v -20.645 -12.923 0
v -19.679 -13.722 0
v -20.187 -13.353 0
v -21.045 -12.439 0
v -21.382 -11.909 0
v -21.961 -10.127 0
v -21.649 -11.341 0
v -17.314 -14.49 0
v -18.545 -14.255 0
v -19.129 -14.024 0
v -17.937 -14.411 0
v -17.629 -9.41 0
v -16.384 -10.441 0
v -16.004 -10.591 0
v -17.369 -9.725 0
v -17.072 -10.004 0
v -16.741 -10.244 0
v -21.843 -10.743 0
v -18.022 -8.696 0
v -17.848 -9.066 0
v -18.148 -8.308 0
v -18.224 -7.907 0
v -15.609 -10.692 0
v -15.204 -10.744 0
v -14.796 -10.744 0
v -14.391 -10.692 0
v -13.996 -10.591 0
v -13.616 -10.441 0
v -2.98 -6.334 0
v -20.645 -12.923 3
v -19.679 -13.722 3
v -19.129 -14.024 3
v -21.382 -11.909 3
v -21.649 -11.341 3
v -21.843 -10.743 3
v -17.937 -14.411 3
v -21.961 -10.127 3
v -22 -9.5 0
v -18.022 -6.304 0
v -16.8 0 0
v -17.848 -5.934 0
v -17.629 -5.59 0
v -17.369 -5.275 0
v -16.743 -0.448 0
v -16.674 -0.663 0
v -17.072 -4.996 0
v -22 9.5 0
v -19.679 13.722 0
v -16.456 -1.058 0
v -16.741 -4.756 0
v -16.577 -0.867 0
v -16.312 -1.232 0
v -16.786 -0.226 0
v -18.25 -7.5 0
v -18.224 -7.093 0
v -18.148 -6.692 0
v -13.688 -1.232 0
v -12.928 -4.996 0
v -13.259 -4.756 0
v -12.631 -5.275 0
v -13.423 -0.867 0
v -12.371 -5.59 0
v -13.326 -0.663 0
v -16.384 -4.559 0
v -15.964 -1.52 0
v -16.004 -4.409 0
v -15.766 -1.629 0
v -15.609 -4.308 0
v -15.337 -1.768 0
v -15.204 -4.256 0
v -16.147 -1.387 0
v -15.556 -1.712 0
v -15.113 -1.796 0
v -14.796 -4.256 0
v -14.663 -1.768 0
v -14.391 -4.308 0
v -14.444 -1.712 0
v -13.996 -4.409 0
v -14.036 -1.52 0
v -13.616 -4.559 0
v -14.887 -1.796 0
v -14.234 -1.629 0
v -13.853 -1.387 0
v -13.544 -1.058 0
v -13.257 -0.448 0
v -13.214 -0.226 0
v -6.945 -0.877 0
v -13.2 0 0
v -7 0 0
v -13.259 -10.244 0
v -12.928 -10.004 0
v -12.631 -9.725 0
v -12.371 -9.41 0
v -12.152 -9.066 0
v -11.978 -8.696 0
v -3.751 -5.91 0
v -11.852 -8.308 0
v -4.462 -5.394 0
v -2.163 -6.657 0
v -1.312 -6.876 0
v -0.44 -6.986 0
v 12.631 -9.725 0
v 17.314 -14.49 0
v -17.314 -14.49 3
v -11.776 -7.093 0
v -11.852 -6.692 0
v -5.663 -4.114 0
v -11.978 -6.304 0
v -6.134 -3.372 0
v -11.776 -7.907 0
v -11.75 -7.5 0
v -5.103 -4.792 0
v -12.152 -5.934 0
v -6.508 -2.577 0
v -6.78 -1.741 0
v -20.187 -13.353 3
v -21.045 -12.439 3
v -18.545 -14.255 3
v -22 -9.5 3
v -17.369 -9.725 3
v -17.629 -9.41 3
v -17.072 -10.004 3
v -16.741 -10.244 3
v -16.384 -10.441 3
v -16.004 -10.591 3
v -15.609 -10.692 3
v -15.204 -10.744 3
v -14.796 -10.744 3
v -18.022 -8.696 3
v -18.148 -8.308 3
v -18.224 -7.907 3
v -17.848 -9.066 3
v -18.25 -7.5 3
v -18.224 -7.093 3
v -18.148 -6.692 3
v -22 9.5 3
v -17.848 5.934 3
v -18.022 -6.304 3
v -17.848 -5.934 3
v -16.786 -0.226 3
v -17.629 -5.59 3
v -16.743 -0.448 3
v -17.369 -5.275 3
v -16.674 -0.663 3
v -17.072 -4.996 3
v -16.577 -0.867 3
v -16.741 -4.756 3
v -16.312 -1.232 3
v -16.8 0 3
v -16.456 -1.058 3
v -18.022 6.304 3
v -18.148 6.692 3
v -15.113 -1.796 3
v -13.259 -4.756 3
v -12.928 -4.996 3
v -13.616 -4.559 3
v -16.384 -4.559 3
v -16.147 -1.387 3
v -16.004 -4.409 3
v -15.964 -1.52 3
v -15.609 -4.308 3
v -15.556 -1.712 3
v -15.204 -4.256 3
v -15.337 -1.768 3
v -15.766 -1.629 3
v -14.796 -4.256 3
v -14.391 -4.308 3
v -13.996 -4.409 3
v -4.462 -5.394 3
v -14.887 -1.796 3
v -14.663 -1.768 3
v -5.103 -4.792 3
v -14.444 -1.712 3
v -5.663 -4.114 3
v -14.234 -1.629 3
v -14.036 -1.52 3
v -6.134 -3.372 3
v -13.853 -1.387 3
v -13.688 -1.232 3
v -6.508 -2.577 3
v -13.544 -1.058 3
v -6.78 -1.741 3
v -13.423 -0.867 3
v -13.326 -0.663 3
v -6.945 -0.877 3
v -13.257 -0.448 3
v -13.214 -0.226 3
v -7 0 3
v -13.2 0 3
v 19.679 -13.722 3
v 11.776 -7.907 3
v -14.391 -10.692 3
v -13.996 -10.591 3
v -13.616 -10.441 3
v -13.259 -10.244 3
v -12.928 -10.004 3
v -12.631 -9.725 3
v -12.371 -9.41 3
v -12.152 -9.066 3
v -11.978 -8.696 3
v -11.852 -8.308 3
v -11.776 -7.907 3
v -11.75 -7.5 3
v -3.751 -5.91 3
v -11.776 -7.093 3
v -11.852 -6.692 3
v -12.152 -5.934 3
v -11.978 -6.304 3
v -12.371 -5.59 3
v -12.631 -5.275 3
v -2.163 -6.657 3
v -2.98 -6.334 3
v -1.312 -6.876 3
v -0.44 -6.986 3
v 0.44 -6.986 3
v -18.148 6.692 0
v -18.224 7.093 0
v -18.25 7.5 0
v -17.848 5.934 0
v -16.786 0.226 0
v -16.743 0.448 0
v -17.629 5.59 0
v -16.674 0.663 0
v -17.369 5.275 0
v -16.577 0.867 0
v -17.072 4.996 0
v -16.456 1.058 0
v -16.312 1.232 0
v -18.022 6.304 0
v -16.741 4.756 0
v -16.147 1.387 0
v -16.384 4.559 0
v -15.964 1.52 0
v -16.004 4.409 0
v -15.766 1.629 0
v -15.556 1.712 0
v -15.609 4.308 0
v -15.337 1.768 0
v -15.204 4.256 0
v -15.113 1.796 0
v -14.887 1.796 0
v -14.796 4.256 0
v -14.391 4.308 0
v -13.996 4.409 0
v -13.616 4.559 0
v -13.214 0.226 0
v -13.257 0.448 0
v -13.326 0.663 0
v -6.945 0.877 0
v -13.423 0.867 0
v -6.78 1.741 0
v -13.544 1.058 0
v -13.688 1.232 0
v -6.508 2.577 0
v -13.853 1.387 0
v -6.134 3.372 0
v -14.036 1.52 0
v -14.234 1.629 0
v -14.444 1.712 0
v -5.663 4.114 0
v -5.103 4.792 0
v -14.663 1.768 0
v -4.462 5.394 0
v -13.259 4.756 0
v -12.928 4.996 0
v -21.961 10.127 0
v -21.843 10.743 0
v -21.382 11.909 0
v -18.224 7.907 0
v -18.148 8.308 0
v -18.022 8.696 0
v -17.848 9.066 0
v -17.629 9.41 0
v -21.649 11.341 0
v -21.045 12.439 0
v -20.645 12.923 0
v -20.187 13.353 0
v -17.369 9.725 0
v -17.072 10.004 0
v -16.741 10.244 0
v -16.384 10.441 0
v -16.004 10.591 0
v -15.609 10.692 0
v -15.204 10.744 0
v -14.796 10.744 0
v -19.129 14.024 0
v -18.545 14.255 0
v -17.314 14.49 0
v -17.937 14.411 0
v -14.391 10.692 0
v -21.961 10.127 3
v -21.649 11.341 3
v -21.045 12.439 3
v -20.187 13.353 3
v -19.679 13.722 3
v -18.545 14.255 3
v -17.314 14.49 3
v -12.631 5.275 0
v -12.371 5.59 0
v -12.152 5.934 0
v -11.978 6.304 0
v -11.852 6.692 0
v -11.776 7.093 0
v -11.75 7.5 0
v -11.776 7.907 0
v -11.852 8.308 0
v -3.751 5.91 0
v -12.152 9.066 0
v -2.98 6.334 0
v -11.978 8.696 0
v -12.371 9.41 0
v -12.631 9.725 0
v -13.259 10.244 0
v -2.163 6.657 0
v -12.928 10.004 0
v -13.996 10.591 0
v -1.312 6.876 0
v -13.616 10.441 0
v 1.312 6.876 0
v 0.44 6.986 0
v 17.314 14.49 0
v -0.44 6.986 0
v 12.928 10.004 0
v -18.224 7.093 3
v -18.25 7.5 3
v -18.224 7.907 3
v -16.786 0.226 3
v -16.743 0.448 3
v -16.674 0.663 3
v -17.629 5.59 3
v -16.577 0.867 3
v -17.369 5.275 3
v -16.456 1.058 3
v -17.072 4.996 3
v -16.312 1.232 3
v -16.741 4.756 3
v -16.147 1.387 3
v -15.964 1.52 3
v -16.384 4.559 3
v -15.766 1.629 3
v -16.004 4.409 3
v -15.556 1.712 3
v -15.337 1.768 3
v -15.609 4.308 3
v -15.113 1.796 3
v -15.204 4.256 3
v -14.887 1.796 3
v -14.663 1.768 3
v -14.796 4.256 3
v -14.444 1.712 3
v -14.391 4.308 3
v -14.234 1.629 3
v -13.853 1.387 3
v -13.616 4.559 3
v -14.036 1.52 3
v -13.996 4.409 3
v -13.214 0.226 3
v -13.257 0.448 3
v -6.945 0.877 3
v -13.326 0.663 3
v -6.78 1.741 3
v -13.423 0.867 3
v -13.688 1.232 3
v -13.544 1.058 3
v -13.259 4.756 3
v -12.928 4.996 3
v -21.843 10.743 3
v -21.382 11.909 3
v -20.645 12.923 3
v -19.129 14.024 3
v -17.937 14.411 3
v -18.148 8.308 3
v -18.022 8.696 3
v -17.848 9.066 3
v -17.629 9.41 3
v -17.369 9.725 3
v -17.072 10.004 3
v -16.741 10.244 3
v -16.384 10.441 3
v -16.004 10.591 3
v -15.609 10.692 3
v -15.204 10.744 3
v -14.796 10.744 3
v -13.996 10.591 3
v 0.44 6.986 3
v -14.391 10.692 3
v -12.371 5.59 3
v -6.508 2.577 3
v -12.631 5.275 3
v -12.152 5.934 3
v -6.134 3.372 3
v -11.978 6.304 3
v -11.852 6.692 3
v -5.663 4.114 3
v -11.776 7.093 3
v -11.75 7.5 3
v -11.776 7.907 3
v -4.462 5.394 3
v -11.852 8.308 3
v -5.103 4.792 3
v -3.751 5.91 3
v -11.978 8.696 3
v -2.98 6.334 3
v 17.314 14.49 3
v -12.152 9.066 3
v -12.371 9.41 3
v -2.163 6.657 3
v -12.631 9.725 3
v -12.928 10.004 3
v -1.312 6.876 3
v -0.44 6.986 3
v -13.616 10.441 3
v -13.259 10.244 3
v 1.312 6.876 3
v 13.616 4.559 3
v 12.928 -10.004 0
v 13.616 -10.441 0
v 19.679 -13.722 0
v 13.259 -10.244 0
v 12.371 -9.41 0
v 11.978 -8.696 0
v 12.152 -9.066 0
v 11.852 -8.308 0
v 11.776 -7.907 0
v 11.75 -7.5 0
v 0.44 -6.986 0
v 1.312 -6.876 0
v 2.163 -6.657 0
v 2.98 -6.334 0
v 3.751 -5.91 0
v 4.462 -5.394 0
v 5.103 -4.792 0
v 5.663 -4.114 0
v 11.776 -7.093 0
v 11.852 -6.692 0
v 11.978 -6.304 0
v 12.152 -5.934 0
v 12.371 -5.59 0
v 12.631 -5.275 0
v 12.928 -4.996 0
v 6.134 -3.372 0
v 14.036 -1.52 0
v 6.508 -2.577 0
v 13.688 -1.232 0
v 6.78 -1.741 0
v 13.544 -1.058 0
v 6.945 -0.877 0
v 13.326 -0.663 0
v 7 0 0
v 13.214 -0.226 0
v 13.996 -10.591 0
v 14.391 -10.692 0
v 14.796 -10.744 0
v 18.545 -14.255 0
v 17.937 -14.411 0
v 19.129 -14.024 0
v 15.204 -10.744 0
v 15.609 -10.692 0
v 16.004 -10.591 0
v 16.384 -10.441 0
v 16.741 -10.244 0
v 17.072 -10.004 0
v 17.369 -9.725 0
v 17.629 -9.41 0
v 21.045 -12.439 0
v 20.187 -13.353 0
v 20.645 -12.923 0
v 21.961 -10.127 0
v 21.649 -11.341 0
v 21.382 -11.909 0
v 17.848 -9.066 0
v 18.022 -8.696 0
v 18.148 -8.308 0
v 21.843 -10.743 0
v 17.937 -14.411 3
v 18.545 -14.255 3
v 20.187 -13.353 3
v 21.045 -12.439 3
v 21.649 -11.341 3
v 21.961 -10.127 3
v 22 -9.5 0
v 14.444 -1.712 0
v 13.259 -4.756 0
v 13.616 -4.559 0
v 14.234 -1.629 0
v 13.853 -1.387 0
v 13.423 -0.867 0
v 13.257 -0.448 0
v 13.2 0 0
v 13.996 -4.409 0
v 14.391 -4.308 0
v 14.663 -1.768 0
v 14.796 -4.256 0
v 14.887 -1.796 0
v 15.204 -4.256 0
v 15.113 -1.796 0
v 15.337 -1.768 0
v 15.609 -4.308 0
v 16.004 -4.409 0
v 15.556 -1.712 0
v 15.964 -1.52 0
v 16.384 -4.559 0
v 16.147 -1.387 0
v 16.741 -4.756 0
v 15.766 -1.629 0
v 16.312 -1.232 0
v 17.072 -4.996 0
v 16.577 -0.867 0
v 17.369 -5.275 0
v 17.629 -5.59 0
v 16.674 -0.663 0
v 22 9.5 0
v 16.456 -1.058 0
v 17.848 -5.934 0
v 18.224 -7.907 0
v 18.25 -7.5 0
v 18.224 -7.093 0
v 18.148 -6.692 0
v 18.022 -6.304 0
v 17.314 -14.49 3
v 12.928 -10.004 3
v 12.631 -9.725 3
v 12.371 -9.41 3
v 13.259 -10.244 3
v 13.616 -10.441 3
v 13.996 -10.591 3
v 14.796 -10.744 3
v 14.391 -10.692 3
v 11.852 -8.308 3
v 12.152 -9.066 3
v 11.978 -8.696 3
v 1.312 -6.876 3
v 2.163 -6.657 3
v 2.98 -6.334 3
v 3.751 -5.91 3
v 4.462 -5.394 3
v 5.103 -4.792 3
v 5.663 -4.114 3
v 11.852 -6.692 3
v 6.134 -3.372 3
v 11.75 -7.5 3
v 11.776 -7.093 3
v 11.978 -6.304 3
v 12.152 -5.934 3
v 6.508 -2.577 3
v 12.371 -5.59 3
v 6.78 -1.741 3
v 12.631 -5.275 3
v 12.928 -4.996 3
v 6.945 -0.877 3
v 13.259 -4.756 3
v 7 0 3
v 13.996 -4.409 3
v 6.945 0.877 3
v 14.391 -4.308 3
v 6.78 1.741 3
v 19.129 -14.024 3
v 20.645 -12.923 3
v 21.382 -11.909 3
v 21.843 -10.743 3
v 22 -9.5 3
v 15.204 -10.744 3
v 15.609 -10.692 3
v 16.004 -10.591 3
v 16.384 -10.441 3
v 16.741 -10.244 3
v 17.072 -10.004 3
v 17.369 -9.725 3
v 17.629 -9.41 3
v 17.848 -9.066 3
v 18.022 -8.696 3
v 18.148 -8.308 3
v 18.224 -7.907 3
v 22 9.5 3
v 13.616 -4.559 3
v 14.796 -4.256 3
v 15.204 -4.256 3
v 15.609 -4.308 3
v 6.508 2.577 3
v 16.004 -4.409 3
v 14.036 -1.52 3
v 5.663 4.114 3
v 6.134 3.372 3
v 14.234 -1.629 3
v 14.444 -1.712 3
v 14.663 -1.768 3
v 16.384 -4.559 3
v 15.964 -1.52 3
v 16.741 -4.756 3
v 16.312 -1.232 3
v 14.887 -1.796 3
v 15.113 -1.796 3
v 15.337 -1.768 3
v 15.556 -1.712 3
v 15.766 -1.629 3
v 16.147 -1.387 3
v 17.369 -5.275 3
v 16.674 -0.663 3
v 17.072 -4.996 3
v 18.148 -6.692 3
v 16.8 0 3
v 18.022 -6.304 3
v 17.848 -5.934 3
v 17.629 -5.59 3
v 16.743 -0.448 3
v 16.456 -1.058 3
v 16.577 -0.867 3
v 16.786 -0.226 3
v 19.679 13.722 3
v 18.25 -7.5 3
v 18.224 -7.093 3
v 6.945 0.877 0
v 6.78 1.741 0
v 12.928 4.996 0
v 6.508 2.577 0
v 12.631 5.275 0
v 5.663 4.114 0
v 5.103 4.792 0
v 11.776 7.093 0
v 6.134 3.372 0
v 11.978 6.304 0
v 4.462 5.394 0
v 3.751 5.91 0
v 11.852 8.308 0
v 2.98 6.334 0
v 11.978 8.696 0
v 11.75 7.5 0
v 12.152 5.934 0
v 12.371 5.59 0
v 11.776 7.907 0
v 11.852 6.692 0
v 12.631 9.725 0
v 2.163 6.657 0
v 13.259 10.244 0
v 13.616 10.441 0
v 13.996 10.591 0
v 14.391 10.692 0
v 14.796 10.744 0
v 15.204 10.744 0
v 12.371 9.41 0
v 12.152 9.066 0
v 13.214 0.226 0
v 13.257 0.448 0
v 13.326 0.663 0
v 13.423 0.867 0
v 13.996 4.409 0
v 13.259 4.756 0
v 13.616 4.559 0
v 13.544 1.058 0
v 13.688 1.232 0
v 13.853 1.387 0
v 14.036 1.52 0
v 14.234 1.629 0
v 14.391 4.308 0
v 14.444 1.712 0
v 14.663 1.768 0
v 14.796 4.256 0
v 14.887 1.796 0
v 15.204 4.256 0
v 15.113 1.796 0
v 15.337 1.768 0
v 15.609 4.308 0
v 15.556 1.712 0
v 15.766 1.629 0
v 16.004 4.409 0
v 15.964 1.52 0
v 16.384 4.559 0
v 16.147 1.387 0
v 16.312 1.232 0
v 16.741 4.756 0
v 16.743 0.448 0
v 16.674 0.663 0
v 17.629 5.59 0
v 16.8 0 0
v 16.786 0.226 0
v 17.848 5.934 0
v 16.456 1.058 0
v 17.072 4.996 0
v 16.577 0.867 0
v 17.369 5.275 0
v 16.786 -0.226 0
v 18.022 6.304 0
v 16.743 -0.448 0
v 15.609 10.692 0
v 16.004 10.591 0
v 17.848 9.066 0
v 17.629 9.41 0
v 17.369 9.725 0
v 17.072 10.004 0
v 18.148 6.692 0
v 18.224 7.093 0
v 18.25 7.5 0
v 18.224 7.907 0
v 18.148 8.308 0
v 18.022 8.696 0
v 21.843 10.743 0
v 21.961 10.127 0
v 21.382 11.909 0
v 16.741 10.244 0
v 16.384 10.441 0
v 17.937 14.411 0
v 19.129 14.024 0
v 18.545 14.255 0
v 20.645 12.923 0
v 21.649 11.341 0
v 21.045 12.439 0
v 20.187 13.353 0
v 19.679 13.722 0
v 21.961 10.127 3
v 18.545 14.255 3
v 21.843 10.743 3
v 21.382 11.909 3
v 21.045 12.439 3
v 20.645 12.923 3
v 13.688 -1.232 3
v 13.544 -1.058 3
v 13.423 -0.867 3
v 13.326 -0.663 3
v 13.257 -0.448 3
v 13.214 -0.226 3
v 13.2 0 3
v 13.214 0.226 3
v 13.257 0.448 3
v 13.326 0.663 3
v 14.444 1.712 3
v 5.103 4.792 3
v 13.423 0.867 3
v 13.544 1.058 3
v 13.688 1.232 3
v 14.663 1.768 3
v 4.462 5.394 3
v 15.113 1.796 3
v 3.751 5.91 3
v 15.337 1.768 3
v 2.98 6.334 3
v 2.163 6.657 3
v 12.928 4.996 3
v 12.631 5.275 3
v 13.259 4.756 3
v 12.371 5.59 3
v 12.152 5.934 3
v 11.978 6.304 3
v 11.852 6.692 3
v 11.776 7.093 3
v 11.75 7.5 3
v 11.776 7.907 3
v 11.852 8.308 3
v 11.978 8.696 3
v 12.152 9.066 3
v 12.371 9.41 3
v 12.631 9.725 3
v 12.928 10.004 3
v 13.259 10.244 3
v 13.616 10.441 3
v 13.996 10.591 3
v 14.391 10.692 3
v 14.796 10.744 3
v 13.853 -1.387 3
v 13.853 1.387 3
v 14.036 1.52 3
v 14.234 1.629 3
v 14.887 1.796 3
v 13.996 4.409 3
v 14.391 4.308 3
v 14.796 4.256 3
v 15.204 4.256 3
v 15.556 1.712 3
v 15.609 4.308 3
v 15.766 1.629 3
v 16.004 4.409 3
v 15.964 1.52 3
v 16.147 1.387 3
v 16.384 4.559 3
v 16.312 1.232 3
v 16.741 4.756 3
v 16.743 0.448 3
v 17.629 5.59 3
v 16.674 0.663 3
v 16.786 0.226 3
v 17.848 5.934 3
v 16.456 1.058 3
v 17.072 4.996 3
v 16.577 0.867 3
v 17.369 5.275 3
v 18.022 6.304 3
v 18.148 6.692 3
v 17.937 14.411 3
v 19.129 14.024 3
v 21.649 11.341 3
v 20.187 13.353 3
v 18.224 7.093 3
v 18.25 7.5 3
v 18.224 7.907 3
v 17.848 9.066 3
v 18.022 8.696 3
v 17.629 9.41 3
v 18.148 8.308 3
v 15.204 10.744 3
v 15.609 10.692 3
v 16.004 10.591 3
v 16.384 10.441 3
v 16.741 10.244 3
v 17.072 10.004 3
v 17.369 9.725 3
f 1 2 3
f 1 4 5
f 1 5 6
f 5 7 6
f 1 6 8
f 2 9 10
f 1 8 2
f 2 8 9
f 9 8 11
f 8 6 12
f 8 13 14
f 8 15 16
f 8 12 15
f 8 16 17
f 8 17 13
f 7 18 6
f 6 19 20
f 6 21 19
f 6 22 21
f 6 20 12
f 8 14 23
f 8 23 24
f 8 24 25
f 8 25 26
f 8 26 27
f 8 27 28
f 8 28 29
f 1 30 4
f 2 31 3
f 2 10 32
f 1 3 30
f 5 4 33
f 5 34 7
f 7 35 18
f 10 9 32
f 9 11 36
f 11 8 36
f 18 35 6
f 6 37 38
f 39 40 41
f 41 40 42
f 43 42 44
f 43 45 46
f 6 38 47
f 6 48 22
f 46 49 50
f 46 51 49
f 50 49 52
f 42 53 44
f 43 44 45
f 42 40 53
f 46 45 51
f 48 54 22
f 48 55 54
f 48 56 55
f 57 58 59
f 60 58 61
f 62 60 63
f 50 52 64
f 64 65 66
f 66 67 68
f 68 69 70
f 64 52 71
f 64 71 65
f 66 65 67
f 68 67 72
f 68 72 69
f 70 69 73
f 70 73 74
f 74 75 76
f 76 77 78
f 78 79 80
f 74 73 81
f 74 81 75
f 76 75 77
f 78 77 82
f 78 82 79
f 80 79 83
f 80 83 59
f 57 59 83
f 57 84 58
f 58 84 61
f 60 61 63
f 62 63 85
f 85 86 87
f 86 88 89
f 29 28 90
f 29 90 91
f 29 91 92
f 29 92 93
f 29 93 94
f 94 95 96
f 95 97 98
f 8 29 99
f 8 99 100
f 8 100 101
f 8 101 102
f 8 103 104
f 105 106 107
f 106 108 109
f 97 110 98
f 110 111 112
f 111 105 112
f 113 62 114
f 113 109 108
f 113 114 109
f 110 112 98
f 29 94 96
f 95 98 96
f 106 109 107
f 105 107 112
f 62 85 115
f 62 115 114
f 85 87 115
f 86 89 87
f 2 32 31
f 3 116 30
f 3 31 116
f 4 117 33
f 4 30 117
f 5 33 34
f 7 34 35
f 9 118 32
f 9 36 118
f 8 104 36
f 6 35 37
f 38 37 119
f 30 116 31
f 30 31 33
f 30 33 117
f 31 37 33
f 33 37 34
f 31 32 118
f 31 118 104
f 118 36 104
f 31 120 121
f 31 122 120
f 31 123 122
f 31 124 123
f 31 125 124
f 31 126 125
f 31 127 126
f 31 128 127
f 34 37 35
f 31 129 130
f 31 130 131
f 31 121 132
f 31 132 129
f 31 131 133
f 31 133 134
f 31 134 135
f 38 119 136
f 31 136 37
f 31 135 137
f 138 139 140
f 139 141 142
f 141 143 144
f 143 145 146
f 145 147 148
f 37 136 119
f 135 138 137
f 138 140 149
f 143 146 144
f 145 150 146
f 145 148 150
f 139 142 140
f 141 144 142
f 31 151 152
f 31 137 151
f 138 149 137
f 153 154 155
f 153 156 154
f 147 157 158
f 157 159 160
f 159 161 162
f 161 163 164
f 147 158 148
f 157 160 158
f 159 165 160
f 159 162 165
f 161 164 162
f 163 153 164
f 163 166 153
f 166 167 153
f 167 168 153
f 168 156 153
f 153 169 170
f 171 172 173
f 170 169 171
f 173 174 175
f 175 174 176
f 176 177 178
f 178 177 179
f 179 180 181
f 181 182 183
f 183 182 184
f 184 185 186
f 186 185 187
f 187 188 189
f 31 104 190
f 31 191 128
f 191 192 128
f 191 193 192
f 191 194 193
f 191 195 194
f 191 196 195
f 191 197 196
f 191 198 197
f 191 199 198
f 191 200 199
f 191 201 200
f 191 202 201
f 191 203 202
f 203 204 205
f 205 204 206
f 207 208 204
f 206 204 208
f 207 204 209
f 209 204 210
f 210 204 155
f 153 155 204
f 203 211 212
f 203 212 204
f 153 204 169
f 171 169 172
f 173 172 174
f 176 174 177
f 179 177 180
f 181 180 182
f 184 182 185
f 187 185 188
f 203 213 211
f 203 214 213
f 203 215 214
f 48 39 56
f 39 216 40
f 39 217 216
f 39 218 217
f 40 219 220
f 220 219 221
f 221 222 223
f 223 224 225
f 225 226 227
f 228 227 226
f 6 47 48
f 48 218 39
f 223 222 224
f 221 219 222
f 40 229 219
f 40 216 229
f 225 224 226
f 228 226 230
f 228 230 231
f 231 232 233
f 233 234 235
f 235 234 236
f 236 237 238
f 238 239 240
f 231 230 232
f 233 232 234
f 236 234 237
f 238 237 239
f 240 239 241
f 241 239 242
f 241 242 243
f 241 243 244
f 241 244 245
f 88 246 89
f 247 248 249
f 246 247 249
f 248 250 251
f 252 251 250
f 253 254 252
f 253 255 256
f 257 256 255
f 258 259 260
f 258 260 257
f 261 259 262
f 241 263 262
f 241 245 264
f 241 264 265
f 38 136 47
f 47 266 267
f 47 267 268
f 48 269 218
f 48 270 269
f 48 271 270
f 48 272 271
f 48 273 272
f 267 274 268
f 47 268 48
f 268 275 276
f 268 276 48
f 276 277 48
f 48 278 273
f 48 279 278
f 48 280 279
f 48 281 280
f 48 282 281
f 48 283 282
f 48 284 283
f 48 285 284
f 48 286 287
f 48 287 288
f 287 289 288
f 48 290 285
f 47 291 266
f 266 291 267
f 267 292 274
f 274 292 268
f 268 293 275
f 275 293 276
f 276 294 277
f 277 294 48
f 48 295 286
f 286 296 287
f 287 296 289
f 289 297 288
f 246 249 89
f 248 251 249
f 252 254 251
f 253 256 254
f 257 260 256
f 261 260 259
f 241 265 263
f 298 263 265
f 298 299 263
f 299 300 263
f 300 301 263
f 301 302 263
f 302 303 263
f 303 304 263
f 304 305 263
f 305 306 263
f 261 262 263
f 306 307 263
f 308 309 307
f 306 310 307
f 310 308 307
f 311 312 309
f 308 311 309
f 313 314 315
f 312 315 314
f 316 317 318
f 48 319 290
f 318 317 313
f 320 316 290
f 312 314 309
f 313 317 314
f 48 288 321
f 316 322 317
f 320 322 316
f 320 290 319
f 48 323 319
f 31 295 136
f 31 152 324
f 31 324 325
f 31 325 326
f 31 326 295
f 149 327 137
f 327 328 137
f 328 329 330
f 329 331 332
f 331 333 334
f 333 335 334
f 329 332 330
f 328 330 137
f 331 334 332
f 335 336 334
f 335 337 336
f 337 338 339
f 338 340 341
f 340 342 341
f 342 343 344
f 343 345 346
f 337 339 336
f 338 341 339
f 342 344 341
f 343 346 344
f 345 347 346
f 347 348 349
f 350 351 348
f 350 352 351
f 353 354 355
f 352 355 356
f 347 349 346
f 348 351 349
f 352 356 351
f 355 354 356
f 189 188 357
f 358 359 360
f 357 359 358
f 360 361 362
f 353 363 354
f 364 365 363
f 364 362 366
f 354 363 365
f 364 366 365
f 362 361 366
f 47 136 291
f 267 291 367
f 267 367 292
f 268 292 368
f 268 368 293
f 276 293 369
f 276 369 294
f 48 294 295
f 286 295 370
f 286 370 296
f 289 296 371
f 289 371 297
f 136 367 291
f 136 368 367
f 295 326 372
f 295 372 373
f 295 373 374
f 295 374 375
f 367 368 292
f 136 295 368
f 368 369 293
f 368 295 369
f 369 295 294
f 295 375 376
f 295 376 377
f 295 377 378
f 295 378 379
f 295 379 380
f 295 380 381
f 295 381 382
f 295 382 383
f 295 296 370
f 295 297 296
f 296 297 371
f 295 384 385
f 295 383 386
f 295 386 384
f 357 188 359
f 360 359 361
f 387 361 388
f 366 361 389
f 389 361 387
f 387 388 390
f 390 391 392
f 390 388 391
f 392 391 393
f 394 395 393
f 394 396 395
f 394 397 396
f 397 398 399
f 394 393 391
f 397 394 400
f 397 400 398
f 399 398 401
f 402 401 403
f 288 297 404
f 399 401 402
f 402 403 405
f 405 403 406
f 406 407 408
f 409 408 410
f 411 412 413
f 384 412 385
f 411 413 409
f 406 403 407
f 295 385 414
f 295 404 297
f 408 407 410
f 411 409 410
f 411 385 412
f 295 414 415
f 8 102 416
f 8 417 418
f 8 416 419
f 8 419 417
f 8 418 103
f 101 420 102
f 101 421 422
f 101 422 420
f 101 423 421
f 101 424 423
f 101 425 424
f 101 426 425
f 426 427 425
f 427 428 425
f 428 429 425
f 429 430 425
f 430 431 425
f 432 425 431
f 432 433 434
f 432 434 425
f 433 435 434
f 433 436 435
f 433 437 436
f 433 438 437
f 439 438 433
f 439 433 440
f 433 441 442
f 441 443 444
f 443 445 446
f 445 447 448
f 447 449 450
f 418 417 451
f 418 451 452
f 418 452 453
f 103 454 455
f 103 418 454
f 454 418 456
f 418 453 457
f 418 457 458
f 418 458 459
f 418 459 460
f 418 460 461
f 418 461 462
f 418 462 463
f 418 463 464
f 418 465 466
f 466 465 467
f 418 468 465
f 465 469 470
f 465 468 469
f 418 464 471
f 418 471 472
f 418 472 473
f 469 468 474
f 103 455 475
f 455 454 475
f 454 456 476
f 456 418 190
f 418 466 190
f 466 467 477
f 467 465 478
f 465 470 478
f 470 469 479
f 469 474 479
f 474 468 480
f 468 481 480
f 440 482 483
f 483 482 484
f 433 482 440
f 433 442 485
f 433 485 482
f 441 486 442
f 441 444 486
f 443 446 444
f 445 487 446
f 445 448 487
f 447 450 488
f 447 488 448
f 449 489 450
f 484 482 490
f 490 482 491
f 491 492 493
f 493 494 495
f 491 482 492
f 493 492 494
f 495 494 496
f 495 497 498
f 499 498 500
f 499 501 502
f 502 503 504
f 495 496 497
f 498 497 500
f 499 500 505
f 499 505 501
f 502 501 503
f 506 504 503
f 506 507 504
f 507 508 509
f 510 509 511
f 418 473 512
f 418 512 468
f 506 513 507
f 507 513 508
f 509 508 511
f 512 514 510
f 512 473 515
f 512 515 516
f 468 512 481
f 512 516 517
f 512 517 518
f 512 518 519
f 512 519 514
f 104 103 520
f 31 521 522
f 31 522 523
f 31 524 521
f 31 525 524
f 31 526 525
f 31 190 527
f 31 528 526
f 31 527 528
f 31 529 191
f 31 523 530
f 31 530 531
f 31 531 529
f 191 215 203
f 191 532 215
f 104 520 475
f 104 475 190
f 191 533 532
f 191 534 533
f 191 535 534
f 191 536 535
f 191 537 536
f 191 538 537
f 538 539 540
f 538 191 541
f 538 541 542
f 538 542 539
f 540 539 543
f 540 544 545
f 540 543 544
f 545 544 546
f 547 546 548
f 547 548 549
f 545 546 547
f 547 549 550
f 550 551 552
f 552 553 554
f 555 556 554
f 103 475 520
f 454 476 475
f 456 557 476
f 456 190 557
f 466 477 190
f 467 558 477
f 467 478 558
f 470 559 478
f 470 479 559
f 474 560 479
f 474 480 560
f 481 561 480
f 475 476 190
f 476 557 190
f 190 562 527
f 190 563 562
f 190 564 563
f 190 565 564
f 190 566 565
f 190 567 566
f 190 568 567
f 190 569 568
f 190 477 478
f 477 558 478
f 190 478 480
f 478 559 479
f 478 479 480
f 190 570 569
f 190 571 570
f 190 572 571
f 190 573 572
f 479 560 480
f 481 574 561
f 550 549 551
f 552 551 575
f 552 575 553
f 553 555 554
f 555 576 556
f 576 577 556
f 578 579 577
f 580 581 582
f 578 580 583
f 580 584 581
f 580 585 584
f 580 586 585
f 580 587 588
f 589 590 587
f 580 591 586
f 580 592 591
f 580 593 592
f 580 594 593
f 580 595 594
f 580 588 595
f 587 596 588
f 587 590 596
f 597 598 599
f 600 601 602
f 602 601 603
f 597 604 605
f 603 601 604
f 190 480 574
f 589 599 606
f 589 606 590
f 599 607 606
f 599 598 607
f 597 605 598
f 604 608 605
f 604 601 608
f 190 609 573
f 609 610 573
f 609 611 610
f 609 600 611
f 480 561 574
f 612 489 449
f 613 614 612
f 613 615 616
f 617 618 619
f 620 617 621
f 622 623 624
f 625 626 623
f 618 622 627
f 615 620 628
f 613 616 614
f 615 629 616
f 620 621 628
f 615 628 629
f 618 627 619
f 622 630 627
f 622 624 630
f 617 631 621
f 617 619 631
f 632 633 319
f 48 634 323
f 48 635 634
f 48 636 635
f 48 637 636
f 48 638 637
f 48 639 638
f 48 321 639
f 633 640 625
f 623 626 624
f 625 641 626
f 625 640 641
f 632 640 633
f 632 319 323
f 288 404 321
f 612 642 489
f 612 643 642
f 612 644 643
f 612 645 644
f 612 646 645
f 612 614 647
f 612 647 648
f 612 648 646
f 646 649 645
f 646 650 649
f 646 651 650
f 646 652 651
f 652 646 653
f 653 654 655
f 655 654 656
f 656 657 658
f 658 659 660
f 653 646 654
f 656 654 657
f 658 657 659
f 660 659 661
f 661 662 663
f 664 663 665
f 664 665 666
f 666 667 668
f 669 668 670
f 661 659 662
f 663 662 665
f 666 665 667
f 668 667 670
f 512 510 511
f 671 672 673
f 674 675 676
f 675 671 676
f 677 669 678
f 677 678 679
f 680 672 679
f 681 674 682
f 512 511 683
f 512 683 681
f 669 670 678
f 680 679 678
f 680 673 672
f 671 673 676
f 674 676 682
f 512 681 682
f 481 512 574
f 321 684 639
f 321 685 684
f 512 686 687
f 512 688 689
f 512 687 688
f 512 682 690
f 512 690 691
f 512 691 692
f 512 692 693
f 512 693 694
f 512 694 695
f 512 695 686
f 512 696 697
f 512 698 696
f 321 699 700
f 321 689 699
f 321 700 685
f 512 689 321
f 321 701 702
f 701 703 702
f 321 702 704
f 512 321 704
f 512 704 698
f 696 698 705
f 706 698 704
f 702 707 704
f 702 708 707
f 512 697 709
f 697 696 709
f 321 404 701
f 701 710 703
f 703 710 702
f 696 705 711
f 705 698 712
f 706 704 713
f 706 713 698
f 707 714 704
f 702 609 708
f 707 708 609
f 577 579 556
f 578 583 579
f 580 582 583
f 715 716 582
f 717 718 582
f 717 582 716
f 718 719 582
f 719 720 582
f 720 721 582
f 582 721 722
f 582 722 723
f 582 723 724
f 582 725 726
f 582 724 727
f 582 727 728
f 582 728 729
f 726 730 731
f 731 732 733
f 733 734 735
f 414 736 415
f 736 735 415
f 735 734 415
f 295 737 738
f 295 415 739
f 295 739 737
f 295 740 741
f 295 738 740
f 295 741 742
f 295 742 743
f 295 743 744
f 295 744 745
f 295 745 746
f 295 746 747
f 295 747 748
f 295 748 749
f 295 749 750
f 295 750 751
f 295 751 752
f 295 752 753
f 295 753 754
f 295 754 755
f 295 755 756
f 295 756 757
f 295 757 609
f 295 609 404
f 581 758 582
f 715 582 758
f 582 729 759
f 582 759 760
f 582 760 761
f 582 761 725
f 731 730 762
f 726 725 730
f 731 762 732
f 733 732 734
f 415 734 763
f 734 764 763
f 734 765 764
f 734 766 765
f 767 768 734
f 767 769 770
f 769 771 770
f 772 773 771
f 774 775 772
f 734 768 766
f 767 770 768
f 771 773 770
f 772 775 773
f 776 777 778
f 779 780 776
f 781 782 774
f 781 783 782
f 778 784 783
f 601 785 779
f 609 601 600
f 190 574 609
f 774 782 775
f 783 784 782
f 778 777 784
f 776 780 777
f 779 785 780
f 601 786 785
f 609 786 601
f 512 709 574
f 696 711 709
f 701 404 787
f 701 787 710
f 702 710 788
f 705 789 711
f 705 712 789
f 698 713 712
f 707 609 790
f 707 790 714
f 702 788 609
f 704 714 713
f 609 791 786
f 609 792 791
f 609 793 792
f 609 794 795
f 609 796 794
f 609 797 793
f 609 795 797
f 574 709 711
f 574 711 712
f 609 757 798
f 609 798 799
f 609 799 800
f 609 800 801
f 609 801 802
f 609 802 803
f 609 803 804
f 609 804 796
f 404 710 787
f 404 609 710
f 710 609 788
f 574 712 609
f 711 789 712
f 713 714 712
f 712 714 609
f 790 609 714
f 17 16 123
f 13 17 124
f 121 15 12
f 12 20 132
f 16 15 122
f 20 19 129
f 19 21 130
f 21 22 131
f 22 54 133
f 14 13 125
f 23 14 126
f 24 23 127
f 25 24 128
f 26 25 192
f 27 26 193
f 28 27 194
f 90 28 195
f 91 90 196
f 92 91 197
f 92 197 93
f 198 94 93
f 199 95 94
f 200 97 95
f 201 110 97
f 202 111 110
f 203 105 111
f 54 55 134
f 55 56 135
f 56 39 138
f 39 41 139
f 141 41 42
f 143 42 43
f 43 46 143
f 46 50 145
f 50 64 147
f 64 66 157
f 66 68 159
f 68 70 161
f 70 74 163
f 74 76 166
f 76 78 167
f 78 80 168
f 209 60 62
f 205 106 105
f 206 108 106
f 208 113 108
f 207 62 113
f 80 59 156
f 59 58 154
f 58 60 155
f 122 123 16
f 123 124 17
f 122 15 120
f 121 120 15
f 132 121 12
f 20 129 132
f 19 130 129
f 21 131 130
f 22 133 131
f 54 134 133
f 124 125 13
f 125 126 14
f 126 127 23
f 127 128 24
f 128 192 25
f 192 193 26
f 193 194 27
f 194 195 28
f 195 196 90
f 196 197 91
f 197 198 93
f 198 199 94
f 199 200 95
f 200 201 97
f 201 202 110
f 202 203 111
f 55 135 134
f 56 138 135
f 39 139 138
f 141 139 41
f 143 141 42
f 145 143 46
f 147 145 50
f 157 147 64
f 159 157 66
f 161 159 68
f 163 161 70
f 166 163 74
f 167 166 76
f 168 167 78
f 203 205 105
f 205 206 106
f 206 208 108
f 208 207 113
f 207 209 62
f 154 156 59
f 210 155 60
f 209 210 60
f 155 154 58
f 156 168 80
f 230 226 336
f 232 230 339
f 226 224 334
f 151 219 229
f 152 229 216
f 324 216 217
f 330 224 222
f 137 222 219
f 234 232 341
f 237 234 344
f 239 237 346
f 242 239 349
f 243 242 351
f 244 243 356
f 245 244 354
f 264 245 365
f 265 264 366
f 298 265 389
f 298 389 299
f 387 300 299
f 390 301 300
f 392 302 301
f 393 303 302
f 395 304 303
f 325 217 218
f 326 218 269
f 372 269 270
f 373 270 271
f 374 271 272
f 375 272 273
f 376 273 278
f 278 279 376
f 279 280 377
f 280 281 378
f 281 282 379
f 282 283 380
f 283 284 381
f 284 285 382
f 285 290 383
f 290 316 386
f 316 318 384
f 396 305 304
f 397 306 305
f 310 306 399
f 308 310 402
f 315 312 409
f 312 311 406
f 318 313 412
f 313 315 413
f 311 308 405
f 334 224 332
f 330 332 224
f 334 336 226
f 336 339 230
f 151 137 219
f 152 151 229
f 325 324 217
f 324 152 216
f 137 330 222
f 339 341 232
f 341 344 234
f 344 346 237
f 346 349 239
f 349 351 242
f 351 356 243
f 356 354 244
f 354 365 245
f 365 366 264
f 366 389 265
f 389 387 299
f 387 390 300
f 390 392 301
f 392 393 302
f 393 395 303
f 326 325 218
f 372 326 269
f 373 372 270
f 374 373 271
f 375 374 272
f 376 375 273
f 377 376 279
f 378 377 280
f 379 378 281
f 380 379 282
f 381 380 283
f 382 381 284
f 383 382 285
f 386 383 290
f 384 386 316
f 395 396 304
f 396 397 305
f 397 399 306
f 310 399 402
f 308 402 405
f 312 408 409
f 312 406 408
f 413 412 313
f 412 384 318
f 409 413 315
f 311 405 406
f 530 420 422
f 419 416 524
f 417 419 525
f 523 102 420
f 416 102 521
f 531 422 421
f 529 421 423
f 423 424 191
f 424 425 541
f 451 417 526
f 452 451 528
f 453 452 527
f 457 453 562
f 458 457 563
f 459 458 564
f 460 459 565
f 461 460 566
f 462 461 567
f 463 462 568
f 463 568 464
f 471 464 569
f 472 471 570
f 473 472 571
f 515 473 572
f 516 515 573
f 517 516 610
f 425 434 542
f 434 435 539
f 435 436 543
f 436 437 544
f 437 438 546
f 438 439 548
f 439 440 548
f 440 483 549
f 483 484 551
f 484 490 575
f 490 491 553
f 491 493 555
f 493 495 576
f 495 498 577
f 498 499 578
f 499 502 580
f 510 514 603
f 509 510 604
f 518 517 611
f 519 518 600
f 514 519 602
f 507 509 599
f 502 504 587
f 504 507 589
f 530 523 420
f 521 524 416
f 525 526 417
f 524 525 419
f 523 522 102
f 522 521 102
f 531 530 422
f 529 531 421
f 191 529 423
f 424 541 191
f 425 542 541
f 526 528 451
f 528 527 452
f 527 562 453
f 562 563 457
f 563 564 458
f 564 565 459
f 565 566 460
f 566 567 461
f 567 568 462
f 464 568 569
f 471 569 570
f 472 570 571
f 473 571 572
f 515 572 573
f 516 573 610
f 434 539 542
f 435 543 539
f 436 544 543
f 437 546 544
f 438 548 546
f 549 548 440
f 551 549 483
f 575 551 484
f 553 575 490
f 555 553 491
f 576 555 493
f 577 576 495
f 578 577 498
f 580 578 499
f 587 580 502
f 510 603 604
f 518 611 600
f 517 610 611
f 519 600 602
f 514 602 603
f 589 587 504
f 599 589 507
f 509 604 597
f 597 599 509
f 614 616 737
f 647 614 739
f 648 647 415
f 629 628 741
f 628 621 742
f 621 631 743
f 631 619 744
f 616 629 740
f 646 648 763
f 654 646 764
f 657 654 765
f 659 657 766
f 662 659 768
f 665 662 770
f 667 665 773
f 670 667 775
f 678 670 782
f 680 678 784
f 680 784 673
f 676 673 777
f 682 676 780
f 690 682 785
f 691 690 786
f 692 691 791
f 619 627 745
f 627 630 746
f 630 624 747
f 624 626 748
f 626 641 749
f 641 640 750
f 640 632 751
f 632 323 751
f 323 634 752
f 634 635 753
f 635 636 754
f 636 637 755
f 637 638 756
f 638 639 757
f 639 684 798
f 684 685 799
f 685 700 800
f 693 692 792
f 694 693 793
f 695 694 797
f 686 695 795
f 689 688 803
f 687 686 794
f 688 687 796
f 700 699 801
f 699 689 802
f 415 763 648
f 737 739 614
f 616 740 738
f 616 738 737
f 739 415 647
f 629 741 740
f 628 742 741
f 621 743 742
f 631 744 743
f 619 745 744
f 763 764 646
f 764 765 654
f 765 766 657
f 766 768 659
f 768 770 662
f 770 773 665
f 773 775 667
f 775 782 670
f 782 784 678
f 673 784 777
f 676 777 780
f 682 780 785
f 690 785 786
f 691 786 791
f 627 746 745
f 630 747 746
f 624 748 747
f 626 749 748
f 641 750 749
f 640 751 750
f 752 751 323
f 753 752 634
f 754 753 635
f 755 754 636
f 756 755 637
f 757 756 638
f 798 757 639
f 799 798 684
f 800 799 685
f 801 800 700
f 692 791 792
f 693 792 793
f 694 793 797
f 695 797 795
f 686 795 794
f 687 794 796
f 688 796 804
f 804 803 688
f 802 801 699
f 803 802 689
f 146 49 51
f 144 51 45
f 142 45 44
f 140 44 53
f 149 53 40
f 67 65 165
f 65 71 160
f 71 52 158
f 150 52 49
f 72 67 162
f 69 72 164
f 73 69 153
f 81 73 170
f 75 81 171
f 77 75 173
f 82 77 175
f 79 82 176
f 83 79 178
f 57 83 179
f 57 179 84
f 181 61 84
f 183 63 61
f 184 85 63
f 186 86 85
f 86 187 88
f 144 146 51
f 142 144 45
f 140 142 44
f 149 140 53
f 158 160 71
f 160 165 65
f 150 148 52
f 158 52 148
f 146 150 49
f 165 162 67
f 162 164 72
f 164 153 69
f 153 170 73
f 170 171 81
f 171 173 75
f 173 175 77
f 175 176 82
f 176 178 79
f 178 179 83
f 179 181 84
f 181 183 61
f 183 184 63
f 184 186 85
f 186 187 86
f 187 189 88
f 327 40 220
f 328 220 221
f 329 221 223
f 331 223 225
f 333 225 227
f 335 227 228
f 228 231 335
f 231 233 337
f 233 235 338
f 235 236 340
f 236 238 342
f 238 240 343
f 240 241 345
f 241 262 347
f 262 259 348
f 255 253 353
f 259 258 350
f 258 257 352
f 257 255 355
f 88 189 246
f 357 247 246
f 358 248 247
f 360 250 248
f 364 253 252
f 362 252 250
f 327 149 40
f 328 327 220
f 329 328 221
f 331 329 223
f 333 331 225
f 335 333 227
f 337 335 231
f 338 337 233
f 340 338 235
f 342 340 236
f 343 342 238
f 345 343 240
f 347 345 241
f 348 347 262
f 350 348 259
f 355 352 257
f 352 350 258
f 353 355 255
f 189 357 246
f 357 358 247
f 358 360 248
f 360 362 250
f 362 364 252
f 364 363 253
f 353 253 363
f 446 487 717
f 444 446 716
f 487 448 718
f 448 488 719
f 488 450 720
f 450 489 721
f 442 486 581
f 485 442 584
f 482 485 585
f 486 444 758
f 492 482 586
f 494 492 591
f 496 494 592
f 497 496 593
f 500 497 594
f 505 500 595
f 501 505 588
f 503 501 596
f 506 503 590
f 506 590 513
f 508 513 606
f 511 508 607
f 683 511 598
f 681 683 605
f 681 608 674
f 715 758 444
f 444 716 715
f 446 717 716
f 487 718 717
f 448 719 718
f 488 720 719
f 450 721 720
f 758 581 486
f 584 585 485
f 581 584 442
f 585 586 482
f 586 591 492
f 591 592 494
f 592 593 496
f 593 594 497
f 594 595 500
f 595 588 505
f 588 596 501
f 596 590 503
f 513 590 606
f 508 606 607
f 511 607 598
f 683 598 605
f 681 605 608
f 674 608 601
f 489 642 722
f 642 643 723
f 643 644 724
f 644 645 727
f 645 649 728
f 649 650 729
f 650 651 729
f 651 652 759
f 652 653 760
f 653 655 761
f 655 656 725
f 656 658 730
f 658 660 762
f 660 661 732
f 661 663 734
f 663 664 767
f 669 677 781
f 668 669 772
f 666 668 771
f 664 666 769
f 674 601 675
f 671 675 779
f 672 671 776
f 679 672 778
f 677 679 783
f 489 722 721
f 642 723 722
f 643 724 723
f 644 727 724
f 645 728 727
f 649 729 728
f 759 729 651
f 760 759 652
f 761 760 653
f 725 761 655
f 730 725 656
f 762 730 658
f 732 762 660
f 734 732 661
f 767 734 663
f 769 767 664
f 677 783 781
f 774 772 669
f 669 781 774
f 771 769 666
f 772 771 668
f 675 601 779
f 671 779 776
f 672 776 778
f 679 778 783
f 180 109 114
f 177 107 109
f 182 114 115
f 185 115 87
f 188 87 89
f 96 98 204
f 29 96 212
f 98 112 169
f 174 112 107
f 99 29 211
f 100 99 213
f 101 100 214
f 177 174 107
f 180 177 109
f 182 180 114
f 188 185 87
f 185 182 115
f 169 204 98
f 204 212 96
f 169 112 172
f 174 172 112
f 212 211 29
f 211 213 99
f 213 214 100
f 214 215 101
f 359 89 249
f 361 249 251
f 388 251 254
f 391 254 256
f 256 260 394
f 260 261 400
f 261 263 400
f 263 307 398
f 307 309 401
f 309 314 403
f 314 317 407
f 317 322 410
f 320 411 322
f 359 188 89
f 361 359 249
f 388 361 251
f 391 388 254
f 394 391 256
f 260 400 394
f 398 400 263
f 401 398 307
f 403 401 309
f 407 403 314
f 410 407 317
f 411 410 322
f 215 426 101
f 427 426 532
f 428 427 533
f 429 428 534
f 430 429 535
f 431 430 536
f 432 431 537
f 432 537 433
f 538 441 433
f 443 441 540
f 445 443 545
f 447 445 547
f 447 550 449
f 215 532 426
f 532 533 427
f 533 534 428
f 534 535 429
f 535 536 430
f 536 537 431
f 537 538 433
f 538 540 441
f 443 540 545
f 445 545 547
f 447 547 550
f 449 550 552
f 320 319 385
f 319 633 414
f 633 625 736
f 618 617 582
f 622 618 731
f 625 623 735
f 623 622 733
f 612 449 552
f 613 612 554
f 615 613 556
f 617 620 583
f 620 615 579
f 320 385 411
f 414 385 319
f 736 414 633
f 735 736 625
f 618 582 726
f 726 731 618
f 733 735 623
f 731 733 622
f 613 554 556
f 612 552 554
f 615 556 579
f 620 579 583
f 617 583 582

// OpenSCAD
$fn = 50;

difference() {
	union() {
		hull() {
			translate(v = [-17.0, 9.5, 0]) {
				cylinder(h = 3, r = 5);
			}
			translate(v = [17.0, 9.5, 0]) {
				cylinder(h = 3, r = 5);
			}
			translate(v = [-17.0, -9.5, 0]) {
				cylinder(h = 3, r = 5);
			}
			translate(v = [17.0, -9.5, 0]) {
				cylinder(h = 3, r = 5);
			}
		}
	}
	union() {
		translate(v = [-15.0, -7.5, 0]) {
			cylinder(h = 3, r = 3.25);
		}
		translate(v = [-15.0, 7.5, 0]) {
			cylinder(h = 3, r = 3.25);
		}
		translate(v = [15.0, -7.5, 0]) {
			cylinder(h = 3, r = 3.25);
		}
		translate(v = [15.0, 7.5, 0]) {
			cylinder(h = 3, r = 3.25);
		}
		translate(v = [-15.0, 0.0, 0]) {
			cylinder(h = 3, r = 1.8);
		}
		translate(v = [15.0, 0.0, 0]) {
			cylinder(h = 3, r = 1.8);
		}
		cylinder(h = 3, r = 7.0);
	}
}
